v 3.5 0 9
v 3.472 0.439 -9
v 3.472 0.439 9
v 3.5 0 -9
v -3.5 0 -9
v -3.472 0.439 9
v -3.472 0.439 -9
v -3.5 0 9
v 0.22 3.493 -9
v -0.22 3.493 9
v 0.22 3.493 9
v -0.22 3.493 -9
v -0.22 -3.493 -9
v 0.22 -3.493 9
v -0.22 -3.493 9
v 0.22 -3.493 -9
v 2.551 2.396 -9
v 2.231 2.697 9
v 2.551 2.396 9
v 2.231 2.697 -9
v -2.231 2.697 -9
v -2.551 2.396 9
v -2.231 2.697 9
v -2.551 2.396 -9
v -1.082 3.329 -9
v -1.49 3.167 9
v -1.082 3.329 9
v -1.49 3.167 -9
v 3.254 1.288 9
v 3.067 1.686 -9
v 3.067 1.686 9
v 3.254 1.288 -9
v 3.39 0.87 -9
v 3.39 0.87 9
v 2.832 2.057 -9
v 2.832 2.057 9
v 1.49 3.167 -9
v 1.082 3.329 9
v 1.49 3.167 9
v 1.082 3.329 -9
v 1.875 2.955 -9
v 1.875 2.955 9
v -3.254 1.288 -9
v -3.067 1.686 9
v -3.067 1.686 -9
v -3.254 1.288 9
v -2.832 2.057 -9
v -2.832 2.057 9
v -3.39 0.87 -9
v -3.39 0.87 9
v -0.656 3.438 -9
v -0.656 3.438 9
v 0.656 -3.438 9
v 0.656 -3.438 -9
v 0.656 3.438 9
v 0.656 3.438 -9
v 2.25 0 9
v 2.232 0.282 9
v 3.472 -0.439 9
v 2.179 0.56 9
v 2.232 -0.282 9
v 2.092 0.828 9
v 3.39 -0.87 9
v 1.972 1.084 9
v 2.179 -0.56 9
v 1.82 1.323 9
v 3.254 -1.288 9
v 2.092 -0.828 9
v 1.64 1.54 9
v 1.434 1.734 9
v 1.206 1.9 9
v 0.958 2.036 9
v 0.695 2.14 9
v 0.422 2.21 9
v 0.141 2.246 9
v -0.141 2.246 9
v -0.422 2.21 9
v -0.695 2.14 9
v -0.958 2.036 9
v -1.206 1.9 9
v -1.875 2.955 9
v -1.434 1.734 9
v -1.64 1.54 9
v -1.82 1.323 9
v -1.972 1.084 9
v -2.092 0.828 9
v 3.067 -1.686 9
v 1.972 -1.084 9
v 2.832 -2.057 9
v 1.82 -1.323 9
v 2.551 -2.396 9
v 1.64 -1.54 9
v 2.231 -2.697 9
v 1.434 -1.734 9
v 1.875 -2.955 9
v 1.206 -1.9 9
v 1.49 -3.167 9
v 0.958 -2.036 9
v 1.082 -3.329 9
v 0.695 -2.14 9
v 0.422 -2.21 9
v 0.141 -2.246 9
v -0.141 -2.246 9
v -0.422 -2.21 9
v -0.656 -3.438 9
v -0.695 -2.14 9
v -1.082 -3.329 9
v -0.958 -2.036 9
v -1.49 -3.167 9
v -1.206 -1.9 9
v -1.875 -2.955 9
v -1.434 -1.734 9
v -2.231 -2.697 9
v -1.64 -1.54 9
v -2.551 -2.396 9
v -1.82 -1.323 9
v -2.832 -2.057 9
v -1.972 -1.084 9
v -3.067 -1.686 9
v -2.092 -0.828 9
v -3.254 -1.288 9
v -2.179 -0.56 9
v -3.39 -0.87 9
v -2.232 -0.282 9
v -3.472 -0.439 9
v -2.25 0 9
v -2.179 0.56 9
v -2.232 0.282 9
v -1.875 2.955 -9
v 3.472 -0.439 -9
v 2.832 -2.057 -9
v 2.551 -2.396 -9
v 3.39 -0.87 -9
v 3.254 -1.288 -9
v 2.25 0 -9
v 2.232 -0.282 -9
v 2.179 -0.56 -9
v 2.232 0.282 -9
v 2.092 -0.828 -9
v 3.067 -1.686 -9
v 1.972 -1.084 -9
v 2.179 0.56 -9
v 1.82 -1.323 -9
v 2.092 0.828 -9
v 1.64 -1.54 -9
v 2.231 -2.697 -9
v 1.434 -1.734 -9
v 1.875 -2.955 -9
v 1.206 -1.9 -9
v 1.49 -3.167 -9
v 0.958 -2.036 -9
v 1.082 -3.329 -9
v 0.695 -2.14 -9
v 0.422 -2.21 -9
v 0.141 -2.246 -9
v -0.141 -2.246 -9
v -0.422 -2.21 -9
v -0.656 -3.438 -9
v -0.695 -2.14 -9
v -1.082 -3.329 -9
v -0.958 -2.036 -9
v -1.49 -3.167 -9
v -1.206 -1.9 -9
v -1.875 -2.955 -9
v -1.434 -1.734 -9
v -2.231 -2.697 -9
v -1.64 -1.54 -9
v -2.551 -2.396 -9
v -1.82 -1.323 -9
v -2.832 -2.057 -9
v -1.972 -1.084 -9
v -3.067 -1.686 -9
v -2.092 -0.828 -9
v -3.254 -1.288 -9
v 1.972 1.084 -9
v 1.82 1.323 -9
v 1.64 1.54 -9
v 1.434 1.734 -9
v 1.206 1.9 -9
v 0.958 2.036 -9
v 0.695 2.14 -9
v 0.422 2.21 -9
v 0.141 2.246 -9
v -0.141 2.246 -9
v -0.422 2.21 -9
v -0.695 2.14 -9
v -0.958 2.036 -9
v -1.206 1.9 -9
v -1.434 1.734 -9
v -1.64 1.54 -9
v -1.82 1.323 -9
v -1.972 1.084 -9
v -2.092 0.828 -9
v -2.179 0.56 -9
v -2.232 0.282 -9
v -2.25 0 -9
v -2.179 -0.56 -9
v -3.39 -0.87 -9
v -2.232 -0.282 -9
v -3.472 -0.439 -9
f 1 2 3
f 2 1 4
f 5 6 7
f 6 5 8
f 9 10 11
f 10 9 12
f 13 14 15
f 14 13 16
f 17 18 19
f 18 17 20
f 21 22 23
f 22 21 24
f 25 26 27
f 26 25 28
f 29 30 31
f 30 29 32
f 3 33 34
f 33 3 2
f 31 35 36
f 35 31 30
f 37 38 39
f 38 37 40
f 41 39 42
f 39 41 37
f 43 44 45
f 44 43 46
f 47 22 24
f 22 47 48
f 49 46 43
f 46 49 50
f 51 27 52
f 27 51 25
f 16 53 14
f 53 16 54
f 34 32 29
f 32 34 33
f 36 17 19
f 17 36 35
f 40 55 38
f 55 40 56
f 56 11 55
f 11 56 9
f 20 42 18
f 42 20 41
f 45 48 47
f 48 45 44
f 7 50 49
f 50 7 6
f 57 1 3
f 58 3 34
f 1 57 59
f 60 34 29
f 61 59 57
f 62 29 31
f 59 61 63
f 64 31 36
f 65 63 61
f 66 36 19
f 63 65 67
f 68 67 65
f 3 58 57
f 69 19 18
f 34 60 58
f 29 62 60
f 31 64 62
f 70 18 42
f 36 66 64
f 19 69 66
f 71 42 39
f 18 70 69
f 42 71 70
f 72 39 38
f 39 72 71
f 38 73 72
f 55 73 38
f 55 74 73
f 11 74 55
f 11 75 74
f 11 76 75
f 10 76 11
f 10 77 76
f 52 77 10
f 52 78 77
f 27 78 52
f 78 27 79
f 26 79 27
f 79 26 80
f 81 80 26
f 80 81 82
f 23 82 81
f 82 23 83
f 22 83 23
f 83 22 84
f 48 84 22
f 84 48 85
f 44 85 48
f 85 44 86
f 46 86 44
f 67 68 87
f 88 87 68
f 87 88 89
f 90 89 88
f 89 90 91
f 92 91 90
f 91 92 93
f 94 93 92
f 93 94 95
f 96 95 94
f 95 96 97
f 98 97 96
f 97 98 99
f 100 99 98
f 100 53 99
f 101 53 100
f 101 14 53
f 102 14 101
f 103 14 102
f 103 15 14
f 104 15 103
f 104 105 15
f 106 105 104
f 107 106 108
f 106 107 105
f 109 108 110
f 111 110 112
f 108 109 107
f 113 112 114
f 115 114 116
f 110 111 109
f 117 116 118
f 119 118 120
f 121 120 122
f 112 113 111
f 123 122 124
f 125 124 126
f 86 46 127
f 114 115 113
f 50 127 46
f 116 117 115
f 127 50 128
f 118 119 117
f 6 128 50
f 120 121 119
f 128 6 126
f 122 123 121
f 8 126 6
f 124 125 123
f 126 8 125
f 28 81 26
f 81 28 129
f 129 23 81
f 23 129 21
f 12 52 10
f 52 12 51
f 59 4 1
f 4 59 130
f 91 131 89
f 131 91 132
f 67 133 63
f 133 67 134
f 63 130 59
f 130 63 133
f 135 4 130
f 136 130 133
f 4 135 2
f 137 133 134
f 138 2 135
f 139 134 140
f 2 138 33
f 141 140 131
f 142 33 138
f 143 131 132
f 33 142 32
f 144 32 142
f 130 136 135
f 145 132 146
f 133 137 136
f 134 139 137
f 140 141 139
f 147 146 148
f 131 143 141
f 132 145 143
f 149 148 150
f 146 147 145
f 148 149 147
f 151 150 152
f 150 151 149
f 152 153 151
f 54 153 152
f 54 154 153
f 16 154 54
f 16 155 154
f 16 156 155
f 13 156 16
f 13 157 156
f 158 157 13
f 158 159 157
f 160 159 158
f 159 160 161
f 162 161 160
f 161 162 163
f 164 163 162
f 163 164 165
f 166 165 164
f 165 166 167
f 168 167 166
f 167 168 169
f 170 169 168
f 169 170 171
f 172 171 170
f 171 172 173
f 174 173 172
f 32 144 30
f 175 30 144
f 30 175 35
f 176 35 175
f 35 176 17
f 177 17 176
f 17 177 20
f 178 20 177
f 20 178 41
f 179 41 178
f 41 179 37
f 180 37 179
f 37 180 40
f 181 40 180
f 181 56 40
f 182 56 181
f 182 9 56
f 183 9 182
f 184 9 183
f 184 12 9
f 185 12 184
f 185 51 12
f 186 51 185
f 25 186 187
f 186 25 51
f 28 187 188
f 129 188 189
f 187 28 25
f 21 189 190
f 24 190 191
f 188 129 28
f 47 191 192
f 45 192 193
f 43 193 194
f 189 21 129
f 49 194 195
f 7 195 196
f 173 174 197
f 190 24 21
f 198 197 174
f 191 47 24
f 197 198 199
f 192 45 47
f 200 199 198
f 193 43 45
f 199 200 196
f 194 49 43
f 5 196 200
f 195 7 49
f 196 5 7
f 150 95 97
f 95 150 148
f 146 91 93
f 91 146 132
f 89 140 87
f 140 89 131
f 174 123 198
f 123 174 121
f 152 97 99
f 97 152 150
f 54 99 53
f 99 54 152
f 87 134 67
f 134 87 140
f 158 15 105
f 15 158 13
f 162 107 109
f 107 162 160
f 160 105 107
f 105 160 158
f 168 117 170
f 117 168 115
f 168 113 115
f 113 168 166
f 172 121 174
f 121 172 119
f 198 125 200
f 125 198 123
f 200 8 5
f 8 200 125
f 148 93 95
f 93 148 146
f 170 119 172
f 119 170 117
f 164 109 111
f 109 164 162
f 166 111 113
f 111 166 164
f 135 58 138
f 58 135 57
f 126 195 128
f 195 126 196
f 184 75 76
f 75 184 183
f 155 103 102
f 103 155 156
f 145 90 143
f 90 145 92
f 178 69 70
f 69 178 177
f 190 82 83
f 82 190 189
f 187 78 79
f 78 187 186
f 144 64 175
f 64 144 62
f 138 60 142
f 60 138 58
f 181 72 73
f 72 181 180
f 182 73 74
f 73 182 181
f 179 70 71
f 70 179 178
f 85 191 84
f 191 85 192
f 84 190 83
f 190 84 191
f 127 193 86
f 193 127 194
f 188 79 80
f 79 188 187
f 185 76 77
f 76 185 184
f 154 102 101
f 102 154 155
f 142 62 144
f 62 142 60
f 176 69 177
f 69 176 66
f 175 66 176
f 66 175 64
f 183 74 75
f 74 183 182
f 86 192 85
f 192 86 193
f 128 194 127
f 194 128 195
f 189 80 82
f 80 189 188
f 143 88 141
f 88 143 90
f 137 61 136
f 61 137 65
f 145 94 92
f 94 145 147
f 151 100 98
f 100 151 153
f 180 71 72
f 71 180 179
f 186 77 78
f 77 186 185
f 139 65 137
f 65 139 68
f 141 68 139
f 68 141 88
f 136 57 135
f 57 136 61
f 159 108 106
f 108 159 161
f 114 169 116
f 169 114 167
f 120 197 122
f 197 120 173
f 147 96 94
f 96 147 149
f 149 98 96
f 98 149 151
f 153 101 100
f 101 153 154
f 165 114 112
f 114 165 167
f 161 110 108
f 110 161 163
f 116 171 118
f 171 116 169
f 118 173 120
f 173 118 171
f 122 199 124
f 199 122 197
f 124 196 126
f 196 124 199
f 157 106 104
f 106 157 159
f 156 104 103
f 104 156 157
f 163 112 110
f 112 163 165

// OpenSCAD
$fn = 50;


difference() {
	union() {
		translate(v = [0, 0, -9.0000000000]) {
			cylinder(h = 18, r = 3.5000000000);
		}
	}
	union() {
		translate(v = [0, 0, -100.0000000000]) {
			cylinder(h = 200, r = 2.2500000000);
		}
	}
}
